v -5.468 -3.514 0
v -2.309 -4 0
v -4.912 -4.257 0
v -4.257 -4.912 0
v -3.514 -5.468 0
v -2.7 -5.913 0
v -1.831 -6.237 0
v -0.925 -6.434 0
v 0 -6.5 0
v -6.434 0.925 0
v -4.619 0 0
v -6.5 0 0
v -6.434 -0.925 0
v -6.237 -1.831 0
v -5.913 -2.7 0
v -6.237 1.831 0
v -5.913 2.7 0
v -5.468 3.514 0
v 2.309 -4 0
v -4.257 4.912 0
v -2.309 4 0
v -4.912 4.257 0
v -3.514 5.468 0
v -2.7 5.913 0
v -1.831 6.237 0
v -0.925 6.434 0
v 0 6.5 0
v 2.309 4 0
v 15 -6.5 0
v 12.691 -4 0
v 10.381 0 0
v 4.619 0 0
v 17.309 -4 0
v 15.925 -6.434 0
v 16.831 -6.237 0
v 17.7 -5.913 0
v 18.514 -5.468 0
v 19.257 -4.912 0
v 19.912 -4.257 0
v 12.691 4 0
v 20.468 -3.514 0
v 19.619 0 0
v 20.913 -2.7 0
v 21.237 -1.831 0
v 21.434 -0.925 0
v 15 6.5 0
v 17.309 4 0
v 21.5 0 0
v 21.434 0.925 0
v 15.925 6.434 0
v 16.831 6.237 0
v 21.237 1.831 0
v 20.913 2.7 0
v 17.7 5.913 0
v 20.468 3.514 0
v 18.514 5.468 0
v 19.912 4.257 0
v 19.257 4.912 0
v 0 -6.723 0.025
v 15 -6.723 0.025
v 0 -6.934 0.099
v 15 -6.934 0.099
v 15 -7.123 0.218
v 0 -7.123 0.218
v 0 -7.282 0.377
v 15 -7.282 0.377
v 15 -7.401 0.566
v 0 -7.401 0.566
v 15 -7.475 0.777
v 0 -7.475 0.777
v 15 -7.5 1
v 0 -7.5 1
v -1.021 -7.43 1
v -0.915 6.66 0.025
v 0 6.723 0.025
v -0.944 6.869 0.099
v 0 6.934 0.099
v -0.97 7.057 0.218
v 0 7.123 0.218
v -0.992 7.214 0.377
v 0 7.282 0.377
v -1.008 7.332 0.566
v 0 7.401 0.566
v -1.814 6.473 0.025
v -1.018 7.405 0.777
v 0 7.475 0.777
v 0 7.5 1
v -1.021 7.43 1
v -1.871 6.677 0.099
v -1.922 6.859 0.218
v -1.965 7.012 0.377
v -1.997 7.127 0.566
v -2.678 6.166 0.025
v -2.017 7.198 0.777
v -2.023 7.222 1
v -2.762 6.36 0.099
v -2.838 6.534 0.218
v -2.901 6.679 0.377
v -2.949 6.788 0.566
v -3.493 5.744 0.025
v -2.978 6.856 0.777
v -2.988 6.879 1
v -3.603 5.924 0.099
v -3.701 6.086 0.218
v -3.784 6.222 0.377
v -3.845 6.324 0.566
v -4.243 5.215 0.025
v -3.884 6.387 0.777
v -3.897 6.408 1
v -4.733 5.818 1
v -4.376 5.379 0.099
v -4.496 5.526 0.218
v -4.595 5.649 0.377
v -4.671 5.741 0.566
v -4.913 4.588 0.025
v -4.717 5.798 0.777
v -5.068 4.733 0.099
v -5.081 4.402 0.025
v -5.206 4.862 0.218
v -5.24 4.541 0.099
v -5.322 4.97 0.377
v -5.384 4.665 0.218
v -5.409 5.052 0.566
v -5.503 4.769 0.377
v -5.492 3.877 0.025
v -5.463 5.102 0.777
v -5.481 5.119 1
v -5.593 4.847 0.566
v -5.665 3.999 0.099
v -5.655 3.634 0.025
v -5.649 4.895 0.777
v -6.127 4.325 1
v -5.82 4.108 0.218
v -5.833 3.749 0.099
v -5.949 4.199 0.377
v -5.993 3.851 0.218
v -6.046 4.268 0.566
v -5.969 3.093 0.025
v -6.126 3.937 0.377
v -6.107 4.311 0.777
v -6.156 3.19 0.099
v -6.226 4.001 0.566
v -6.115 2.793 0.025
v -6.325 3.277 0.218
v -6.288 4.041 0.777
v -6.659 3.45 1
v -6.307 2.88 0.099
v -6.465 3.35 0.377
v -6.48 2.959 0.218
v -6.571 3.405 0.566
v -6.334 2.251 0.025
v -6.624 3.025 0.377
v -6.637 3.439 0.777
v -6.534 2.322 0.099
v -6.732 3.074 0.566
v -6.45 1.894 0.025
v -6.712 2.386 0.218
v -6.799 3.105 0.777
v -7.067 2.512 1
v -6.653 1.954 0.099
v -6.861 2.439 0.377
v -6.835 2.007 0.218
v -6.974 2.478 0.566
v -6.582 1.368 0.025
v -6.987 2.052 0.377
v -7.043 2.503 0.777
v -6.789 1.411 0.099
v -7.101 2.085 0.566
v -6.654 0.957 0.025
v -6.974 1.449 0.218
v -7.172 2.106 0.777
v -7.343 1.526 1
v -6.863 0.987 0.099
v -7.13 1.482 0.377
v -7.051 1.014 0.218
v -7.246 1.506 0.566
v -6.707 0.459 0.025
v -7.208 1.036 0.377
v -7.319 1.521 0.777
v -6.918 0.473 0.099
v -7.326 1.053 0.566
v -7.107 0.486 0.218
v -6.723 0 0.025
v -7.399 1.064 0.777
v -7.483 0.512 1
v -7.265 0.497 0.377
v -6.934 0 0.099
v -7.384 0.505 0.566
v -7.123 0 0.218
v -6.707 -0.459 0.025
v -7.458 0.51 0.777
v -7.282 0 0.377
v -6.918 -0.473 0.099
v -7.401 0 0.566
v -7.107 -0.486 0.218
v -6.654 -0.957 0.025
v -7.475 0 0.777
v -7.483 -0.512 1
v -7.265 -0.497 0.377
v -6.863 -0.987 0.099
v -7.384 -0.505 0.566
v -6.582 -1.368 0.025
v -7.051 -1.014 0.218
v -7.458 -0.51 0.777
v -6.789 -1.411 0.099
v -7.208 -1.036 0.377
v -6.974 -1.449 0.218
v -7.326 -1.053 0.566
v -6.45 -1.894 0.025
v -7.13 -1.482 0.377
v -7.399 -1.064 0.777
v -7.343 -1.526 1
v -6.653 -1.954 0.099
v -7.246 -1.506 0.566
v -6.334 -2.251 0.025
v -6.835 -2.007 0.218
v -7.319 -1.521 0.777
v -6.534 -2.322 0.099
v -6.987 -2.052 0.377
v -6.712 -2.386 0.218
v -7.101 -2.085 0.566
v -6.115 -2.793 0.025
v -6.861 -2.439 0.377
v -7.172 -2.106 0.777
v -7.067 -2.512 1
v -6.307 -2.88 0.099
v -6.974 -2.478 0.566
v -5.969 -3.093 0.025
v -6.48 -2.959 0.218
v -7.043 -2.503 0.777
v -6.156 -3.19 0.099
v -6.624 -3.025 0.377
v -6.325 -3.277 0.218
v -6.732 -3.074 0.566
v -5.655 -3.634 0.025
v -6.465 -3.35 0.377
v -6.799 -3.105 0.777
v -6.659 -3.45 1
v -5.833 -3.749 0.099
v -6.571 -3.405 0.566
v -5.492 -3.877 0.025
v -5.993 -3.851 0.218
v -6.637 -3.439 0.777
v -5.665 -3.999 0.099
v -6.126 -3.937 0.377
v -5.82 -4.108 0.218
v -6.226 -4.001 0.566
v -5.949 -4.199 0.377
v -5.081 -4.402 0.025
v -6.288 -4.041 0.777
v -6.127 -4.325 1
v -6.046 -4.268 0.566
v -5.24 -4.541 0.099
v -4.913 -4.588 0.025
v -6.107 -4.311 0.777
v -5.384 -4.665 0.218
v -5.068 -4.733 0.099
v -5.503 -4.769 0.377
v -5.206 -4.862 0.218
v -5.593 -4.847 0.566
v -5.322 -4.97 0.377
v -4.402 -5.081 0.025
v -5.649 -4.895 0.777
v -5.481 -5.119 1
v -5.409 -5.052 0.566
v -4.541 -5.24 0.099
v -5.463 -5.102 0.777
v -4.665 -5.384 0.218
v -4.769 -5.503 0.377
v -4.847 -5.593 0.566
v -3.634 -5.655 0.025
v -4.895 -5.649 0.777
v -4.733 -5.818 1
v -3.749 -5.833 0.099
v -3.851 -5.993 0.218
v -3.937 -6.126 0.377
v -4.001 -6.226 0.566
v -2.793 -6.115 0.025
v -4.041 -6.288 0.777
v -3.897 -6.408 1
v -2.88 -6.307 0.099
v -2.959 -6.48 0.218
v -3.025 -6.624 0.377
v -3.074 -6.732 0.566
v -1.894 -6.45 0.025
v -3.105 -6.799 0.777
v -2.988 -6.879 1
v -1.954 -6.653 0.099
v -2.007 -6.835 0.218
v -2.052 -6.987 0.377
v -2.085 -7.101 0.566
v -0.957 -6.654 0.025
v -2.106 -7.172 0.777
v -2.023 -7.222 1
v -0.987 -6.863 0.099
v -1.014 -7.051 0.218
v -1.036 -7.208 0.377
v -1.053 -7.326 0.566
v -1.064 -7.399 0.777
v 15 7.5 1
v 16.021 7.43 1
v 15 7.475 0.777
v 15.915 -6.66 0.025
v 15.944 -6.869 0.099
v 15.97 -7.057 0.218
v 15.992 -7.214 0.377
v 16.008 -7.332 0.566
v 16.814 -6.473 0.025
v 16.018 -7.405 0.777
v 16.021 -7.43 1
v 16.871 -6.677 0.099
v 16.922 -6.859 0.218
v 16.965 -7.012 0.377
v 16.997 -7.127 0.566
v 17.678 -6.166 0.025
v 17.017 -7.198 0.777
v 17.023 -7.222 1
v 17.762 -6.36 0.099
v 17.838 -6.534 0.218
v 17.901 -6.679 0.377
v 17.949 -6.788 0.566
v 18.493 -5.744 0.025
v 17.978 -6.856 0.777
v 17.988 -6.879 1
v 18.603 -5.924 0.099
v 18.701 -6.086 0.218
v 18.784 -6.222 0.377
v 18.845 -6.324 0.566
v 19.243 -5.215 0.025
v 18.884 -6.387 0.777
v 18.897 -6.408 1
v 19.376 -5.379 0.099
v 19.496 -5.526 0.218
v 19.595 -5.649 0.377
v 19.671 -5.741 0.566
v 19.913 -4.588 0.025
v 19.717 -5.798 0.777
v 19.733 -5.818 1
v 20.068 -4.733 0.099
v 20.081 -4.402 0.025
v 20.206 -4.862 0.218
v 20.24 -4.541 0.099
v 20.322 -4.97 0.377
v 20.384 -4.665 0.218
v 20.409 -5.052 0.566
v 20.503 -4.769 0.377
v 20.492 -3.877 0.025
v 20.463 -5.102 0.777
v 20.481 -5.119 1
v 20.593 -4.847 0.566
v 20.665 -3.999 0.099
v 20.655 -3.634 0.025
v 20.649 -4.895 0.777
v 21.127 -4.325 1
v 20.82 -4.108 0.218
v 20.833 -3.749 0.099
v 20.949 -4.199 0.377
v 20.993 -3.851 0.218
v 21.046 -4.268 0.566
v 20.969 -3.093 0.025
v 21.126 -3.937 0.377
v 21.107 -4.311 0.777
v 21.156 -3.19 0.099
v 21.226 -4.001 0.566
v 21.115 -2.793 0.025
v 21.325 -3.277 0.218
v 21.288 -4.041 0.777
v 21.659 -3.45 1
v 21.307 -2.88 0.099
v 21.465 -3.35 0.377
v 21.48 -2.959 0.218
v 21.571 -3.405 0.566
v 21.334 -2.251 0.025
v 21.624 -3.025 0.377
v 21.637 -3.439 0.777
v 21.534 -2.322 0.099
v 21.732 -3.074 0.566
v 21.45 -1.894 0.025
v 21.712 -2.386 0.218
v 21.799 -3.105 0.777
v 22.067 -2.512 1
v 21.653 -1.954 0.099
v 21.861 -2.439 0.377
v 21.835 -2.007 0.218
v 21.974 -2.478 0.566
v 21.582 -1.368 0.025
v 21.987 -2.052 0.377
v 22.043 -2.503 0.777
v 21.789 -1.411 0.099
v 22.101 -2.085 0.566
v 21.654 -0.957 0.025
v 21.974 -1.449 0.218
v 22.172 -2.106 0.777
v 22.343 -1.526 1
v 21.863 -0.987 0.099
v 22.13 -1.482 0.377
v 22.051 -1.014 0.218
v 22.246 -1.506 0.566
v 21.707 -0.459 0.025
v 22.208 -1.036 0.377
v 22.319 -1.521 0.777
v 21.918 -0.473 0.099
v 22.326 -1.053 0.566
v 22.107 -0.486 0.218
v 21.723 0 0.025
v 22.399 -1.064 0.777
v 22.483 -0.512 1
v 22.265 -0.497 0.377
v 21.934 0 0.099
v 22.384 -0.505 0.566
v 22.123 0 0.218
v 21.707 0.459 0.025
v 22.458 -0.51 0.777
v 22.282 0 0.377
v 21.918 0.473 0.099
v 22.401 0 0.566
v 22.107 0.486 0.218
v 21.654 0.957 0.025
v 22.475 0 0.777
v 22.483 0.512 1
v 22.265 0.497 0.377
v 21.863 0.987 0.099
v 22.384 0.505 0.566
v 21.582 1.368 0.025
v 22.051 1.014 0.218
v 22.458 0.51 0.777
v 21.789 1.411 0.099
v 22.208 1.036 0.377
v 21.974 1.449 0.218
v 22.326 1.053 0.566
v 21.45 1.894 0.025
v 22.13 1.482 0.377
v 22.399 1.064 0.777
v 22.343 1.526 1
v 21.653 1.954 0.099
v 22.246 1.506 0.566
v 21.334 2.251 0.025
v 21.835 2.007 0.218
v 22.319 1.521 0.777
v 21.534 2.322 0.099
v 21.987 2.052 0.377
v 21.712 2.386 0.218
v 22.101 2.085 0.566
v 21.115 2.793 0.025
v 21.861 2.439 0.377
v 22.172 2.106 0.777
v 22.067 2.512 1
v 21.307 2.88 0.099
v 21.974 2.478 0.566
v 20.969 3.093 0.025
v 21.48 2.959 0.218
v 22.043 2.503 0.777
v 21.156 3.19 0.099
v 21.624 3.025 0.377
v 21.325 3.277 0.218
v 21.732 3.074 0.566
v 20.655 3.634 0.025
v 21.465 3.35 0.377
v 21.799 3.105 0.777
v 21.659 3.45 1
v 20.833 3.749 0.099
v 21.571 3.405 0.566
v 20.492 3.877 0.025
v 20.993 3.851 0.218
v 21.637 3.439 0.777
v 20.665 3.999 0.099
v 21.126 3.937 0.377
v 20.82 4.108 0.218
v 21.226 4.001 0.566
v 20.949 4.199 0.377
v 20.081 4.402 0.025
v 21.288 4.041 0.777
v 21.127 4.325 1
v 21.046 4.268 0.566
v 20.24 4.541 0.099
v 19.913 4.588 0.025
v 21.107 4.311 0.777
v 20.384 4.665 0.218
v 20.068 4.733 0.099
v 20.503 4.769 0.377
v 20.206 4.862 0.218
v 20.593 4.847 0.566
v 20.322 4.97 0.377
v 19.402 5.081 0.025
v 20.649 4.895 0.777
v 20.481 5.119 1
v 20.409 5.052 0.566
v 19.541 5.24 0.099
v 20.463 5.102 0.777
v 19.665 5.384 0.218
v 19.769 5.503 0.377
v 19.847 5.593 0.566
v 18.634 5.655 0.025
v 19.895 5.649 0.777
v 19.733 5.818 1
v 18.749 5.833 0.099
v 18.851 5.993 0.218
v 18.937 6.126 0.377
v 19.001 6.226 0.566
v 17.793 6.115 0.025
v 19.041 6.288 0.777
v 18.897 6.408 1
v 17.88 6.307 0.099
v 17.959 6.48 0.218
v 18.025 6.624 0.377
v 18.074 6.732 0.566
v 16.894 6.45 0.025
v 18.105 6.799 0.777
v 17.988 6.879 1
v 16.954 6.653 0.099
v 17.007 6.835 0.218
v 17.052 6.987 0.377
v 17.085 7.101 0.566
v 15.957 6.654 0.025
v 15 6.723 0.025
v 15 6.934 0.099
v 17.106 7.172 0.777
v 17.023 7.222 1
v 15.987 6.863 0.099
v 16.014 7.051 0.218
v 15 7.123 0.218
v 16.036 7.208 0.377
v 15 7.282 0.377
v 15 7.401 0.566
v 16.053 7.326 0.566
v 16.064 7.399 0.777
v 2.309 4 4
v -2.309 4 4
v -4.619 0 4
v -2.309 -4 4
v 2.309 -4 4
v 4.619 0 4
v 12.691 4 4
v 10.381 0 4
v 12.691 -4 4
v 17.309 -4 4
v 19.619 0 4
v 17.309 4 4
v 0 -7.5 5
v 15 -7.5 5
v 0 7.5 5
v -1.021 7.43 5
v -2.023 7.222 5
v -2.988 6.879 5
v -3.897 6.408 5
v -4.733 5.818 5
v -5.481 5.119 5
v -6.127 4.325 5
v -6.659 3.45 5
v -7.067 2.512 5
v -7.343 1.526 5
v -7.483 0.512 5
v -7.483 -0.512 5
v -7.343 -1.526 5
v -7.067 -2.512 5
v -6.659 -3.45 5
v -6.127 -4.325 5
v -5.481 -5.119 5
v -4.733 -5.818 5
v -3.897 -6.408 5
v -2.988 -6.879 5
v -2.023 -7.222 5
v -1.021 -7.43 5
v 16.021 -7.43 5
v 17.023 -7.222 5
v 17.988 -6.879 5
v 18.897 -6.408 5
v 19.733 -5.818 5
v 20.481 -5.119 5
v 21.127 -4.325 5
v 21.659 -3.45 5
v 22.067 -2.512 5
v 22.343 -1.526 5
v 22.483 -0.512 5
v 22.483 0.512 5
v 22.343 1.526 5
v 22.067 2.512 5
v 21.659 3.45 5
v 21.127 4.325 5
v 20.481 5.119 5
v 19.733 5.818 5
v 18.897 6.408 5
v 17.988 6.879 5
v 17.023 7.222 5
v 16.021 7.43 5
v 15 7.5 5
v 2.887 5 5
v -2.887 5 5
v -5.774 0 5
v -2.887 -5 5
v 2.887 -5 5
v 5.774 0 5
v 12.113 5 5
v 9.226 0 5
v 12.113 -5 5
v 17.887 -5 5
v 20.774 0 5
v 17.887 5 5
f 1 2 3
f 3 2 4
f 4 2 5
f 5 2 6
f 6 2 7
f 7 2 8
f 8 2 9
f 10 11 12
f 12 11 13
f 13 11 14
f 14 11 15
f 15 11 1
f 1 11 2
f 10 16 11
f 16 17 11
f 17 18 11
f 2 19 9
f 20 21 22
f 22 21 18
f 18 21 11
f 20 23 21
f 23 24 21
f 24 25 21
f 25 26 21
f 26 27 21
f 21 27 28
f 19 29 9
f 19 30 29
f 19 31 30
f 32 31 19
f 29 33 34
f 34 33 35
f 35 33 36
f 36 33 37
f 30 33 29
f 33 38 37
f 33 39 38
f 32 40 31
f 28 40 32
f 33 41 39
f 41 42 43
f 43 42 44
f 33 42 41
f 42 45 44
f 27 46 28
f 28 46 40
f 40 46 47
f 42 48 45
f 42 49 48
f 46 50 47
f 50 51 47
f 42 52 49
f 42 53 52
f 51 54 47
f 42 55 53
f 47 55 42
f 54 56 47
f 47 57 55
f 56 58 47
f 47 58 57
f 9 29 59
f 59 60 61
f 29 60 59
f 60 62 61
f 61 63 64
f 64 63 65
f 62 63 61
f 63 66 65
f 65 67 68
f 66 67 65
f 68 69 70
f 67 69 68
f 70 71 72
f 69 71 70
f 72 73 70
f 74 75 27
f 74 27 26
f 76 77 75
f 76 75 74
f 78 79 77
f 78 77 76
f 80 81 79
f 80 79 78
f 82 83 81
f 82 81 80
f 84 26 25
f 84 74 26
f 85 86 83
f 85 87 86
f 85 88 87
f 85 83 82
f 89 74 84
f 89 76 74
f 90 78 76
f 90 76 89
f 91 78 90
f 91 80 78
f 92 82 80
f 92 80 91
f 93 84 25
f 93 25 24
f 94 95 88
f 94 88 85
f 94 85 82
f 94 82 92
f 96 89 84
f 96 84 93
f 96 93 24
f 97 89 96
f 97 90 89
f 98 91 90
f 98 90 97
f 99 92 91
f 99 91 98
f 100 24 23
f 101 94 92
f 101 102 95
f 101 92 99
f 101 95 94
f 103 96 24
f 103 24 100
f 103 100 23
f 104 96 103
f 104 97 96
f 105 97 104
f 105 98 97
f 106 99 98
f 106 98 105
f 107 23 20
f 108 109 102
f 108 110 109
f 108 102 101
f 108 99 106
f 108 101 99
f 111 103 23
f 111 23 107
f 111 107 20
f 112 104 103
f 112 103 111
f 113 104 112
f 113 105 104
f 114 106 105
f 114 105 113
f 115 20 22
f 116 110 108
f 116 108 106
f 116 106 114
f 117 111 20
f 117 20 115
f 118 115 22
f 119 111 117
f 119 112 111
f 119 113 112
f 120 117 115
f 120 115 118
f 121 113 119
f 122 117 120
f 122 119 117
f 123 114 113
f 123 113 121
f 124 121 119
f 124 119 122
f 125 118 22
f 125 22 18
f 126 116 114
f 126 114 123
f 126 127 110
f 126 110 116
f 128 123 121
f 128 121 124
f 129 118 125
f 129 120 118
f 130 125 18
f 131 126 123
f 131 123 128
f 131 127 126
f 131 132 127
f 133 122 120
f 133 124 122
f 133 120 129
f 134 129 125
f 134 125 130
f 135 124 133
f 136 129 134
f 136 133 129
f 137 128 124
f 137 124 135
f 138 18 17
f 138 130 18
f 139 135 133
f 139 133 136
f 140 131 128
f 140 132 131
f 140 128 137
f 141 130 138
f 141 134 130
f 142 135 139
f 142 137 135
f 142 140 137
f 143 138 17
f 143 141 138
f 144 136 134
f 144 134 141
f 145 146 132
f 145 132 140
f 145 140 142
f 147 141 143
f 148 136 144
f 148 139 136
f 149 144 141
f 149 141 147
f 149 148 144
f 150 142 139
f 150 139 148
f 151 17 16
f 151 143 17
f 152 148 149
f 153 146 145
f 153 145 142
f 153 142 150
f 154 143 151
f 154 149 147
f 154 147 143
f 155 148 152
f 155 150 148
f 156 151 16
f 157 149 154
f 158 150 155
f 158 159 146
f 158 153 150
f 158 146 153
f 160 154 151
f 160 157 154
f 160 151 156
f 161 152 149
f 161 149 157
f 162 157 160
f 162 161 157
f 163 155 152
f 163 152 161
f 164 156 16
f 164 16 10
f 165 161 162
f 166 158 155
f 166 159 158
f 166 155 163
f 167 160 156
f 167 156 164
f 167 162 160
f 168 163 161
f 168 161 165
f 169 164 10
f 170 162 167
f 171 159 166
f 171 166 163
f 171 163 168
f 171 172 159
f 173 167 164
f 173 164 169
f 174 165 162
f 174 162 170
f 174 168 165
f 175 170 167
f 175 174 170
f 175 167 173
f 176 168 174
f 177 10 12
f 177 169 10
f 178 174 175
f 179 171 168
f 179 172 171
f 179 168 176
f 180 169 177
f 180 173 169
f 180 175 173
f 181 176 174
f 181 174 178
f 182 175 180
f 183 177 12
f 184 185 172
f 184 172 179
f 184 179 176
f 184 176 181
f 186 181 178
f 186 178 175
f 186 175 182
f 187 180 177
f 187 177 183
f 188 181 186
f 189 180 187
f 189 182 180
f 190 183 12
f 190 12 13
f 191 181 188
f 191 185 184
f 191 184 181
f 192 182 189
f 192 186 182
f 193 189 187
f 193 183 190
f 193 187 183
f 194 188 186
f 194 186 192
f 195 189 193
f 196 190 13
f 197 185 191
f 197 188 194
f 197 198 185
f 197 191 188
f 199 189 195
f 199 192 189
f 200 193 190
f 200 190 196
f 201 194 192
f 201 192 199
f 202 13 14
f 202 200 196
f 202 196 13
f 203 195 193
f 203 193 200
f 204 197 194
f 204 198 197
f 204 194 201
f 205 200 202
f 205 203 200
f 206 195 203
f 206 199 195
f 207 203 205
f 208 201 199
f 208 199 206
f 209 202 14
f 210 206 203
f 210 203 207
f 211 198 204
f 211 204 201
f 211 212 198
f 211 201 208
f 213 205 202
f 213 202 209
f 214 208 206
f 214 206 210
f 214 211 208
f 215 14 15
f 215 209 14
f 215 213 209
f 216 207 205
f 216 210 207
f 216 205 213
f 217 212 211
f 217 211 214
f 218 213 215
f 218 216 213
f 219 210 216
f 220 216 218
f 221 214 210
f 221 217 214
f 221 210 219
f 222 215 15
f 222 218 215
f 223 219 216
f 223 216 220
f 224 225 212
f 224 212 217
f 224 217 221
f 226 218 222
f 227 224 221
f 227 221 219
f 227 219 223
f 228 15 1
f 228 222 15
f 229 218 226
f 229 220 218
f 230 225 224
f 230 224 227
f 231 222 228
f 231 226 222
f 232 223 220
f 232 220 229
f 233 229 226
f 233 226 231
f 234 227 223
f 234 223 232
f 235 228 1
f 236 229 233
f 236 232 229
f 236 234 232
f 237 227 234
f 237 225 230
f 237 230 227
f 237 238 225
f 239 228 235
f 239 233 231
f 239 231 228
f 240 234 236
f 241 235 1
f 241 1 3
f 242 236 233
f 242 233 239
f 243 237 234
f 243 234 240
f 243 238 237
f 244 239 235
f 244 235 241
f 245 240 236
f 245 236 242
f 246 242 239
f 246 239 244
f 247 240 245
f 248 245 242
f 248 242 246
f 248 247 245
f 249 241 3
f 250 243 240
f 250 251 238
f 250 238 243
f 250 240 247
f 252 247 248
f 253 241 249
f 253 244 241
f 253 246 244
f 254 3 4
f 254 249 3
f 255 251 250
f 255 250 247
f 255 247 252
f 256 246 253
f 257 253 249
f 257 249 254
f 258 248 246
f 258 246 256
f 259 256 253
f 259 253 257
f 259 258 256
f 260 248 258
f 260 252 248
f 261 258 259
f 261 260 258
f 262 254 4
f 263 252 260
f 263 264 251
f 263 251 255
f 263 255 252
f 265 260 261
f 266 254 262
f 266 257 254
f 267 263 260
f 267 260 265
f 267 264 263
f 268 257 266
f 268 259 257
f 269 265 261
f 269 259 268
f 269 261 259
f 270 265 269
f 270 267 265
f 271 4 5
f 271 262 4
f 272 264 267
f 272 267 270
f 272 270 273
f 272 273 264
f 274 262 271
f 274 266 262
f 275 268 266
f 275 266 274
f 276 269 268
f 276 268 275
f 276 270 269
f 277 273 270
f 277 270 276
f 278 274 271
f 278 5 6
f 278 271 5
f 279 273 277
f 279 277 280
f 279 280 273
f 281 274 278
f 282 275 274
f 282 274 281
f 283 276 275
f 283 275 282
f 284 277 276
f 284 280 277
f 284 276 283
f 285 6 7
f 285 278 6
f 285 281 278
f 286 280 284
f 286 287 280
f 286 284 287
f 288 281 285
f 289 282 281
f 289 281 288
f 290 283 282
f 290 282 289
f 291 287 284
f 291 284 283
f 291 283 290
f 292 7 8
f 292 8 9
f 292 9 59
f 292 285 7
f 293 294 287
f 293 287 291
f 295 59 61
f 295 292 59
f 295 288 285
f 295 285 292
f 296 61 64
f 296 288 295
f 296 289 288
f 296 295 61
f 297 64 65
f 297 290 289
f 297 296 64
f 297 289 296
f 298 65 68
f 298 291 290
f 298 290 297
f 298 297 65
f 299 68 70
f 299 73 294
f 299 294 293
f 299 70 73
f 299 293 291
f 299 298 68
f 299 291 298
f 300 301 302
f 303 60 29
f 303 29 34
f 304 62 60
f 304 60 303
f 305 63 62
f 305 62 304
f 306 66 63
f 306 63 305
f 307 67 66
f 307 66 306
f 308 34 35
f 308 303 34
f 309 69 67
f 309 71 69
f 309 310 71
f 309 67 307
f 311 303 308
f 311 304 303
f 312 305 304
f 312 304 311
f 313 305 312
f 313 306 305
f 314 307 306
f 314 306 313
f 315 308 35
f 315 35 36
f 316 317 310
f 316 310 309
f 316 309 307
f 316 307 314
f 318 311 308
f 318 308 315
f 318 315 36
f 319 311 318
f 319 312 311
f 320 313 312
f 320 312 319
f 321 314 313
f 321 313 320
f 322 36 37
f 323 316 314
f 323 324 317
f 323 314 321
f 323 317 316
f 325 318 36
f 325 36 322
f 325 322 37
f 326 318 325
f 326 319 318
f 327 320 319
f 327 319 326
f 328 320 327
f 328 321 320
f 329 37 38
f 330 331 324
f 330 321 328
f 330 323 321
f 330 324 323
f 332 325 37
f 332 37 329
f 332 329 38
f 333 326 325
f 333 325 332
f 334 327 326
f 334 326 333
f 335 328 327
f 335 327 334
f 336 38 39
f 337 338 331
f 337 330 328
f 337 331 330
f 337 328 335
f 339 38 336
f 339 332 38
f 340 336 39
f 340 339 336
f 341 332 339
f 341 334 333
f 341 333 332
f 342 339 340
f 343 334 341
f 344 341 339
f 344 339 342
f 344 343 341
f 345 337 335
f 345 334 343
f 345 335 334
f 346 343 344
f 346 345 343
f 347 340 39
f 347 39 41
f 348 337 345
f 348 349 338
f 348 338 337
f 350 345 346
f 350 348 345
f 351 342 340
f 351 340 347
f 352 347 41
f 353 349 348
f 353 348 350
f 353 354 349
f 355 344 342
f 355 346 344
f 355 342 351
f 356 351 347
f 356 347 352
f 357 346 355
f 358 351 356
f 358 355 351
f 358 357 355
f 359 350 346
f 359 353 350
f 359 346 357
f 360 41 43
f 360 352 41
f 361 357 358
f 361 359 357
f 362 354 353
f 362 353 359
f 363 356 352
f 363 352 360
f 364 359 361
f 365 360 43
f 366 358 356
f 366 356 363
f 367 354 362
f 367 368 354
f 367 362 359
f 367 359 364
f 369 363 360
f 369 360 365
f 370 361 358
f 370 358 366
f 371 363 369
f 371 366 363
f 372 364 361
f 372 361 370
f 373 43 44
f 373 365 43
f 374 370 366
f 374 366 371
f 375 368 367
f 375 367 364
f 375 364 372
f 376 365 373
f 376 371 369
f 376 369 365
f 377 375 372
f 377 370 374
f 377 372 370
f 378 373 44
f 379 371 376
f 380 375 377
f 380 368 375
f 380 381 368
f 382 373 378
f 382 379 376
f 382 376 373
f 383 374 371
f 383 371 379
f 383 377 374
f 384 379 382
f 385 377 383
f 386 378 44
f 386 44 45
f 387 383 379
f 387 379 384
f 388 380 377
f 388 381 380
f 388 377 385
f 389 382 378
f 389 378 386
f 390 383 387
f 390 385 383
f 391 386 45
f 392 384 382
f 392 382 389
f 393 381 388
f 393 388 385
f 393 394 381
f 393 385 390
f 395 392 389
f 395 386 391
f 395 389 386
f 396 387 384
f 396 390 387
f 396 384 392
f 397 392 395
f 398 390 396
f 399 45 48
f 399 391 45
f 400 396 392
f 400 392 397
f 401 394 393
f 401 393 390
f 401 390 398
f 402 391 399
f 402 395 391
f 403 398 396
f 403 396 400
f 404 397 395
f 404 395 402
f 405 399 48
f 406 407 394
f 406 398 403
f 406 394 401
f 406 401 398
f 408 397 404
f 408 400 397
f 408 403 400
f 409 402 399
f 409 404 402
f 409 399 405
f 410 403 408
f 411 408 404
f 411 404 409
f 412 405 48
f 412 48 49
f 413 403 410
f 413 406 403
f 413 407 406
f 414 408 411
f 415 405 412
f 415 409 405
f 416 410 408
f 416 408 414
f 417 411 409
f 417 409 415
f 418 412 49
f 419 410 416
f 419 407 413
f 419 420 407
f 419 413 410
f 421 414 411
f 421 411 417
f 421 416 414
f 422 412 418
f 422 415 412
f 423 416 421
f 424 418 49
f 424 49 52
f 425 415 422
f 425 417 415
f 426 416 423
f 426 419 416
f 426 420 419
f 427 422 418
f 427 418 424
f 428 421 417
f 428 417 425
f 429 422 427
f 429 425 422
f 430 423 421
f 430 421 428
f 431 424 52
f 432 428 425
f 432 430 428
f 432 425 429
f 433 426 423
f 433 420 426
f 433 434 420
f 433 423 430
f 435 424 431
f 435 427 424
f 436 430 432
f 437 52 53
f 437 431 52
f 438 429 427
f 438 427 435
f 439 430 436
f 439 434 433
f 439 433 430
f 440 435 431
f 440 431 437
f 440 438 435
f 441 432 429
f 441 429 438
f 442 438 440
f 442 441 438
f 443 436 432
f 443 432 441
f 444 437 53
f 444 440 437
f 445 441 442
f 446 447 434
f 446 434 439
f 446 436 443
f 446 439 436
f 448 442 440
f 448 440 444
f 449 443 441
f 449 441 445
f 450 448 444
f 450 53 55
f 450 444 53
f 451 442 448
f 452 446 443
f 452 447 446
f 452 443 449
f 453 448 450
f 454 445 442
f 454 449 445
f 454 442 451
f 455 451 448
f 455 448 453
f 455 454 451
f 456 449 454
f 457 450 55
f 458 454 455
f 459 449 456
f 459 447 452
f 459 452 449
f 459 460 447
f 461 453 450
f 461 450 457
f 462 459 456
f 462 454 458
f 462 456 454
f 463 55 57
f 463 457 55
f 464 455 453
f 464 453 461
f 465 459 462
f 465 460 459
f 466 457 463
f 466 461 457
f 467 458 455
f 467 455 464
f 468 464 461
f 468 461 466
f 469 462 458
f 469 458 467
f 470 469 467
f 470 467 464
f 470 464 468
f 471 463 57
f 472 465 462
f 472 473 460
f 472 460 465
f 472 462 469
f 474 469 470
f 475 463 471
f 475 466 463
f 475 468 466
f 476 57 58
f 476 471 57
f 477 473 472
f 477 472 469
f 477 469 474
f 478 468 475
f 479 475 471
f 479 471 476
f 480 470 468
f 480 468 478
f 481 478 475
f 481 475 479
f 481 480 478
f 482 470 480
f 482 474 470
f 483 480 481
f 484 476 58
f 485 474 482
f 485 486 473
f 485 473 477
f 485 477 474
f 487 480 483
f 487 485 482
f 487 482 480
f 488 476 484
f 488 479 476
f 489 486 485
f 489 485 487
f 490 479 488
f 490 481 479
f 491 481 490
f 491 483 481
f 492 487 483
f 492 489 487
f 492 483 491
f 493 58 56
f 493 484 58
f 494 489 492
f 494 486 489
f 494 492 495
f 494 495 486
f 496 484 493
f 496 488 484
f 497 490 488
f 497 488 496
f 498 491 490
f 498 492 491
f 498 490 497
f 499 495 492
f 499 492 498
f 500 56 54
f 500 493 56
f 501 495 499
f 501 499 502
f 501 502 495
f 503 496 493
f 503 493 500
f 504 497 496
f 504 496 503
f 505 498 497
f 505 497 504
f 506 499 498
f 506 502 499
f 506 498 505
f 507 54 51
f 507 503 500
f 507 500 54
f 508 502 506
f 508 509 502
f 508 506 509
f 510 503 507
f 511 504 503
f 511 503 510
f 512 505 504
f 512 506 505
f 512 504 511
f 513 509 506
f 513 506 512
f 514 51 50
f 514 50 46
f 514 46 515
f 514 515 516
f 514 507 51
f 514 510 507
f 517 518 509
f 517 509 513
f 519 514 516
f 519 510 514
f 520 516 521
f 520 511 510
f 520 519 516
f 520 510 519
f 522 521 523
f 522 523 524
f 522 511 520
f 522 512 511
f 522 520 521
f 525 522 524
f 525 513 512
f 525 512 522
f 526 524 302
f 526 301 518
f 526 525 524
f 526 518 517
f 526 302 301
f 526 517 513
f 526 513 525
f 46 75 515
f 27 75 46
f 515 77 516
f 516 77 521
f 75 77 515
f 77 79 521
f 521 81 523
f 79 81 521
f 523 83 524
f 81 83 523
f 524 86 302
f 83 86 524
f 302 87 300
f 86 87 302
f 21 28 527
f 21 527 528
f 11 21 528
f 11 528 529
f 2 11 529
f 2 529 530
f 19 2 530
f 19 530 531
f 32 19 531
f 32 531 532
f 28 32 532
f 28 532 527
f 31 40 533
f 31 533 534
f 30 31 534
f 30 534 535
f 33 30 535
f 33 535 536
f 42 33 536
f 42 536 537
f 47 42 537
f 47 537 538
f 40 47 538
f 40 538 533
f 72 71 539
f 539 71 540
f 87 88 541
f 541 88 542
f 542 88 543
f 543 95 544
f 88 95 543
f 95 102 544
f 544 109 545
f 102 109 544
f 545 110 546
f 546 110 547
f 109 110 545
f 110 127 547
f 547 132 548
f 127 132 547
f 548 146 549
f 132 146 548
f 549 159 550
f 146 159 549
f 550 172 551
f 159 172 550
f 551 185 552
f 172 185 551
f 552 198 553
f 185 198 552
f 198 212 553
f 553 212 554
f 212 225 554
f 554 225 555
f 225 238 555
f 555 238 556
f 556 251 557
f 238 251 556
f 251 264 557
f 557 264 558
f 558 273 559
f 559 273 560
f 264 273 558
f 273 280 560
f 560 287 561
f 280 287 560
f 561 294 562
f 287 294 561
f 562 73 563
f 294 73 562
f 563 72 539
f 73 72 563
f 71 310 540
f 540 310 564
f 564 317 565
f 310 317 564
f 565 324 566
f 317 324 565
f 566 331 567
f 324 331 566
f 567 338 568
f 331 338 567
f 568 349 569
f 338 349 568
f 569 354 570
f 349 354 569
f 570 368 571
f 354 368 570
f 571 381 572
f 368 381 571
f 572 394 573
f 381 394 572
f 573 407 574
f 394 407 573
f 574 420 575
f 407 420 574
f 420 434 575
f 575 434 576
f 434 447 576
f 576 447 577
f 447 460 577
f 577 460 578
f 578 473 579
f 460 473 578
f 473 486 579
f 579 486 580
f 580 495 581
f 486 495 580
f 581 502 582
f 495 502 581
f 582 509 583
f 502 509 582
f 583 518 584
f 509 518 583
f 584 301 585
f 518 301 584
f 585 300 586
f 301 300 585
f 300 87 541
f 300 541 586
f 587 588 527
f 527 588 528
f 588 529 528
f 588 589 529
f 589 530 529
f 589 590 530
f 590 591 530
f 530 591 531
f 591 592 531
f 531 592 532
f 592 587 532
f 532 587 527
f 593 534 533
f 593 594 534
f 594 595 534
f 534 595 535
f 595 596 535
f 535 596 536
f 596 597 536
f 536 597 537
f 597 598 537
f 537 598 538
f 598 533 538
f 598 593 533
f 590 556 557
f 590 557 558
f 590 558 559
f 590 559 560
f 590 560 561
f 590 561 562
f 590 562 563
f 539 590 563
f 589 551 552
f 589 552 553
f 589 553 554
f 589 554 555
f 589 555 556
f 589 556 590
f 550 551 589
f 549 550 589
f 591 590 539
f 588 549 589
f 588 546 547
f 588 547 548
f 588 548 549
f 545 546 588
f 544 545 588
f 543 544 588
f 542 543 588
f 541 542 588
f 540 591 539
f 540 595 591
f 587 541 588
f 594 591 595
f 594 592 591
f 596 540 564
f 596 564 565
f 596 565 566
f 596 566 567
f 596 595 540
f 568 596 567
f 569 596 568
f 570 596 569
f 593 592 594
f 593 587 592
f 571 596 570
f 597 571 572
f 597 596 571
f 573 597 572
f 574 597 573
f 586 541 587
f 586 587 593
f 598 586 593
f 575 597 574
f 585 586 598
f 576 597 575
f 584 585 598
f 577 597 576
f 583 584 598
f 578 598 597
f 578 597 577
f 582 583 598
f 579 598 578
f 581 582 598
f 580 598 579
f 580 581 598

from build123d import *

# Parameters (mm, degrees)
PAD_DEPTH    = 5
CHAMFER_SIZE = 1
FILLET_R     = 1


with BuildPart() as part:
    # Sketch → Pad (new body)
    with BuildSketch(Plane.XY):
        with BuildLine():
            ThreePointArc((0, 7.5), (-7.5, 0), (0, -7.5))
            Line((0, -7.5), (15, -7.5))
            ThreePointArc((15, -7.5), (22.5, 0), (15, 7.5))
            Line((0, 7.5), (15, 7.5))
        make_face()
        Polygon((2.309401, 4), (-2.309401, 4), (-4.618802, 0), (-2.309401, -4), (2.309401, -4), (4.618802, 0), align=None, mode=Mode.SUBTRACT)
        Polygon((12.690599, 4), (10.381198, 0), (12.690599, -4), (17.309401, -4), (19.618802, 0), (17.309401, 4), align=None, mode=Mode.SUBTRACT)
    extrude(amount=PAD_DEPTH)

    # Chamfer
    chamfer_edges = [part.edges().sort_by_distance(p)[0] for p in [
        (11.535898, 2, 5),
        (15, 4, 5),
        (18.464102, 2, 5),
        (18.464102, -2, 5),
        (15, -4, 5),
        (11.535898, -2, 5),
        (3.464102, 2, 5),
        (0, 4, 5),
        (-3.464102, 2, 5),
        (-3.464102, -2, 5),
        (0, -4, 5),
        (3.464102, -2, 5),
    ]]
    chamfer(chamfer_edges, length=CHAMFER_SIZE)

    # Fillet
    fillet_edges = [part.edges().sort_by_distance(p)[0] for p in [
        (7.5, -7.5, 0),
    ]]
    fillet(fillet_edges, radius=FILLET_R)


solid = part.part
